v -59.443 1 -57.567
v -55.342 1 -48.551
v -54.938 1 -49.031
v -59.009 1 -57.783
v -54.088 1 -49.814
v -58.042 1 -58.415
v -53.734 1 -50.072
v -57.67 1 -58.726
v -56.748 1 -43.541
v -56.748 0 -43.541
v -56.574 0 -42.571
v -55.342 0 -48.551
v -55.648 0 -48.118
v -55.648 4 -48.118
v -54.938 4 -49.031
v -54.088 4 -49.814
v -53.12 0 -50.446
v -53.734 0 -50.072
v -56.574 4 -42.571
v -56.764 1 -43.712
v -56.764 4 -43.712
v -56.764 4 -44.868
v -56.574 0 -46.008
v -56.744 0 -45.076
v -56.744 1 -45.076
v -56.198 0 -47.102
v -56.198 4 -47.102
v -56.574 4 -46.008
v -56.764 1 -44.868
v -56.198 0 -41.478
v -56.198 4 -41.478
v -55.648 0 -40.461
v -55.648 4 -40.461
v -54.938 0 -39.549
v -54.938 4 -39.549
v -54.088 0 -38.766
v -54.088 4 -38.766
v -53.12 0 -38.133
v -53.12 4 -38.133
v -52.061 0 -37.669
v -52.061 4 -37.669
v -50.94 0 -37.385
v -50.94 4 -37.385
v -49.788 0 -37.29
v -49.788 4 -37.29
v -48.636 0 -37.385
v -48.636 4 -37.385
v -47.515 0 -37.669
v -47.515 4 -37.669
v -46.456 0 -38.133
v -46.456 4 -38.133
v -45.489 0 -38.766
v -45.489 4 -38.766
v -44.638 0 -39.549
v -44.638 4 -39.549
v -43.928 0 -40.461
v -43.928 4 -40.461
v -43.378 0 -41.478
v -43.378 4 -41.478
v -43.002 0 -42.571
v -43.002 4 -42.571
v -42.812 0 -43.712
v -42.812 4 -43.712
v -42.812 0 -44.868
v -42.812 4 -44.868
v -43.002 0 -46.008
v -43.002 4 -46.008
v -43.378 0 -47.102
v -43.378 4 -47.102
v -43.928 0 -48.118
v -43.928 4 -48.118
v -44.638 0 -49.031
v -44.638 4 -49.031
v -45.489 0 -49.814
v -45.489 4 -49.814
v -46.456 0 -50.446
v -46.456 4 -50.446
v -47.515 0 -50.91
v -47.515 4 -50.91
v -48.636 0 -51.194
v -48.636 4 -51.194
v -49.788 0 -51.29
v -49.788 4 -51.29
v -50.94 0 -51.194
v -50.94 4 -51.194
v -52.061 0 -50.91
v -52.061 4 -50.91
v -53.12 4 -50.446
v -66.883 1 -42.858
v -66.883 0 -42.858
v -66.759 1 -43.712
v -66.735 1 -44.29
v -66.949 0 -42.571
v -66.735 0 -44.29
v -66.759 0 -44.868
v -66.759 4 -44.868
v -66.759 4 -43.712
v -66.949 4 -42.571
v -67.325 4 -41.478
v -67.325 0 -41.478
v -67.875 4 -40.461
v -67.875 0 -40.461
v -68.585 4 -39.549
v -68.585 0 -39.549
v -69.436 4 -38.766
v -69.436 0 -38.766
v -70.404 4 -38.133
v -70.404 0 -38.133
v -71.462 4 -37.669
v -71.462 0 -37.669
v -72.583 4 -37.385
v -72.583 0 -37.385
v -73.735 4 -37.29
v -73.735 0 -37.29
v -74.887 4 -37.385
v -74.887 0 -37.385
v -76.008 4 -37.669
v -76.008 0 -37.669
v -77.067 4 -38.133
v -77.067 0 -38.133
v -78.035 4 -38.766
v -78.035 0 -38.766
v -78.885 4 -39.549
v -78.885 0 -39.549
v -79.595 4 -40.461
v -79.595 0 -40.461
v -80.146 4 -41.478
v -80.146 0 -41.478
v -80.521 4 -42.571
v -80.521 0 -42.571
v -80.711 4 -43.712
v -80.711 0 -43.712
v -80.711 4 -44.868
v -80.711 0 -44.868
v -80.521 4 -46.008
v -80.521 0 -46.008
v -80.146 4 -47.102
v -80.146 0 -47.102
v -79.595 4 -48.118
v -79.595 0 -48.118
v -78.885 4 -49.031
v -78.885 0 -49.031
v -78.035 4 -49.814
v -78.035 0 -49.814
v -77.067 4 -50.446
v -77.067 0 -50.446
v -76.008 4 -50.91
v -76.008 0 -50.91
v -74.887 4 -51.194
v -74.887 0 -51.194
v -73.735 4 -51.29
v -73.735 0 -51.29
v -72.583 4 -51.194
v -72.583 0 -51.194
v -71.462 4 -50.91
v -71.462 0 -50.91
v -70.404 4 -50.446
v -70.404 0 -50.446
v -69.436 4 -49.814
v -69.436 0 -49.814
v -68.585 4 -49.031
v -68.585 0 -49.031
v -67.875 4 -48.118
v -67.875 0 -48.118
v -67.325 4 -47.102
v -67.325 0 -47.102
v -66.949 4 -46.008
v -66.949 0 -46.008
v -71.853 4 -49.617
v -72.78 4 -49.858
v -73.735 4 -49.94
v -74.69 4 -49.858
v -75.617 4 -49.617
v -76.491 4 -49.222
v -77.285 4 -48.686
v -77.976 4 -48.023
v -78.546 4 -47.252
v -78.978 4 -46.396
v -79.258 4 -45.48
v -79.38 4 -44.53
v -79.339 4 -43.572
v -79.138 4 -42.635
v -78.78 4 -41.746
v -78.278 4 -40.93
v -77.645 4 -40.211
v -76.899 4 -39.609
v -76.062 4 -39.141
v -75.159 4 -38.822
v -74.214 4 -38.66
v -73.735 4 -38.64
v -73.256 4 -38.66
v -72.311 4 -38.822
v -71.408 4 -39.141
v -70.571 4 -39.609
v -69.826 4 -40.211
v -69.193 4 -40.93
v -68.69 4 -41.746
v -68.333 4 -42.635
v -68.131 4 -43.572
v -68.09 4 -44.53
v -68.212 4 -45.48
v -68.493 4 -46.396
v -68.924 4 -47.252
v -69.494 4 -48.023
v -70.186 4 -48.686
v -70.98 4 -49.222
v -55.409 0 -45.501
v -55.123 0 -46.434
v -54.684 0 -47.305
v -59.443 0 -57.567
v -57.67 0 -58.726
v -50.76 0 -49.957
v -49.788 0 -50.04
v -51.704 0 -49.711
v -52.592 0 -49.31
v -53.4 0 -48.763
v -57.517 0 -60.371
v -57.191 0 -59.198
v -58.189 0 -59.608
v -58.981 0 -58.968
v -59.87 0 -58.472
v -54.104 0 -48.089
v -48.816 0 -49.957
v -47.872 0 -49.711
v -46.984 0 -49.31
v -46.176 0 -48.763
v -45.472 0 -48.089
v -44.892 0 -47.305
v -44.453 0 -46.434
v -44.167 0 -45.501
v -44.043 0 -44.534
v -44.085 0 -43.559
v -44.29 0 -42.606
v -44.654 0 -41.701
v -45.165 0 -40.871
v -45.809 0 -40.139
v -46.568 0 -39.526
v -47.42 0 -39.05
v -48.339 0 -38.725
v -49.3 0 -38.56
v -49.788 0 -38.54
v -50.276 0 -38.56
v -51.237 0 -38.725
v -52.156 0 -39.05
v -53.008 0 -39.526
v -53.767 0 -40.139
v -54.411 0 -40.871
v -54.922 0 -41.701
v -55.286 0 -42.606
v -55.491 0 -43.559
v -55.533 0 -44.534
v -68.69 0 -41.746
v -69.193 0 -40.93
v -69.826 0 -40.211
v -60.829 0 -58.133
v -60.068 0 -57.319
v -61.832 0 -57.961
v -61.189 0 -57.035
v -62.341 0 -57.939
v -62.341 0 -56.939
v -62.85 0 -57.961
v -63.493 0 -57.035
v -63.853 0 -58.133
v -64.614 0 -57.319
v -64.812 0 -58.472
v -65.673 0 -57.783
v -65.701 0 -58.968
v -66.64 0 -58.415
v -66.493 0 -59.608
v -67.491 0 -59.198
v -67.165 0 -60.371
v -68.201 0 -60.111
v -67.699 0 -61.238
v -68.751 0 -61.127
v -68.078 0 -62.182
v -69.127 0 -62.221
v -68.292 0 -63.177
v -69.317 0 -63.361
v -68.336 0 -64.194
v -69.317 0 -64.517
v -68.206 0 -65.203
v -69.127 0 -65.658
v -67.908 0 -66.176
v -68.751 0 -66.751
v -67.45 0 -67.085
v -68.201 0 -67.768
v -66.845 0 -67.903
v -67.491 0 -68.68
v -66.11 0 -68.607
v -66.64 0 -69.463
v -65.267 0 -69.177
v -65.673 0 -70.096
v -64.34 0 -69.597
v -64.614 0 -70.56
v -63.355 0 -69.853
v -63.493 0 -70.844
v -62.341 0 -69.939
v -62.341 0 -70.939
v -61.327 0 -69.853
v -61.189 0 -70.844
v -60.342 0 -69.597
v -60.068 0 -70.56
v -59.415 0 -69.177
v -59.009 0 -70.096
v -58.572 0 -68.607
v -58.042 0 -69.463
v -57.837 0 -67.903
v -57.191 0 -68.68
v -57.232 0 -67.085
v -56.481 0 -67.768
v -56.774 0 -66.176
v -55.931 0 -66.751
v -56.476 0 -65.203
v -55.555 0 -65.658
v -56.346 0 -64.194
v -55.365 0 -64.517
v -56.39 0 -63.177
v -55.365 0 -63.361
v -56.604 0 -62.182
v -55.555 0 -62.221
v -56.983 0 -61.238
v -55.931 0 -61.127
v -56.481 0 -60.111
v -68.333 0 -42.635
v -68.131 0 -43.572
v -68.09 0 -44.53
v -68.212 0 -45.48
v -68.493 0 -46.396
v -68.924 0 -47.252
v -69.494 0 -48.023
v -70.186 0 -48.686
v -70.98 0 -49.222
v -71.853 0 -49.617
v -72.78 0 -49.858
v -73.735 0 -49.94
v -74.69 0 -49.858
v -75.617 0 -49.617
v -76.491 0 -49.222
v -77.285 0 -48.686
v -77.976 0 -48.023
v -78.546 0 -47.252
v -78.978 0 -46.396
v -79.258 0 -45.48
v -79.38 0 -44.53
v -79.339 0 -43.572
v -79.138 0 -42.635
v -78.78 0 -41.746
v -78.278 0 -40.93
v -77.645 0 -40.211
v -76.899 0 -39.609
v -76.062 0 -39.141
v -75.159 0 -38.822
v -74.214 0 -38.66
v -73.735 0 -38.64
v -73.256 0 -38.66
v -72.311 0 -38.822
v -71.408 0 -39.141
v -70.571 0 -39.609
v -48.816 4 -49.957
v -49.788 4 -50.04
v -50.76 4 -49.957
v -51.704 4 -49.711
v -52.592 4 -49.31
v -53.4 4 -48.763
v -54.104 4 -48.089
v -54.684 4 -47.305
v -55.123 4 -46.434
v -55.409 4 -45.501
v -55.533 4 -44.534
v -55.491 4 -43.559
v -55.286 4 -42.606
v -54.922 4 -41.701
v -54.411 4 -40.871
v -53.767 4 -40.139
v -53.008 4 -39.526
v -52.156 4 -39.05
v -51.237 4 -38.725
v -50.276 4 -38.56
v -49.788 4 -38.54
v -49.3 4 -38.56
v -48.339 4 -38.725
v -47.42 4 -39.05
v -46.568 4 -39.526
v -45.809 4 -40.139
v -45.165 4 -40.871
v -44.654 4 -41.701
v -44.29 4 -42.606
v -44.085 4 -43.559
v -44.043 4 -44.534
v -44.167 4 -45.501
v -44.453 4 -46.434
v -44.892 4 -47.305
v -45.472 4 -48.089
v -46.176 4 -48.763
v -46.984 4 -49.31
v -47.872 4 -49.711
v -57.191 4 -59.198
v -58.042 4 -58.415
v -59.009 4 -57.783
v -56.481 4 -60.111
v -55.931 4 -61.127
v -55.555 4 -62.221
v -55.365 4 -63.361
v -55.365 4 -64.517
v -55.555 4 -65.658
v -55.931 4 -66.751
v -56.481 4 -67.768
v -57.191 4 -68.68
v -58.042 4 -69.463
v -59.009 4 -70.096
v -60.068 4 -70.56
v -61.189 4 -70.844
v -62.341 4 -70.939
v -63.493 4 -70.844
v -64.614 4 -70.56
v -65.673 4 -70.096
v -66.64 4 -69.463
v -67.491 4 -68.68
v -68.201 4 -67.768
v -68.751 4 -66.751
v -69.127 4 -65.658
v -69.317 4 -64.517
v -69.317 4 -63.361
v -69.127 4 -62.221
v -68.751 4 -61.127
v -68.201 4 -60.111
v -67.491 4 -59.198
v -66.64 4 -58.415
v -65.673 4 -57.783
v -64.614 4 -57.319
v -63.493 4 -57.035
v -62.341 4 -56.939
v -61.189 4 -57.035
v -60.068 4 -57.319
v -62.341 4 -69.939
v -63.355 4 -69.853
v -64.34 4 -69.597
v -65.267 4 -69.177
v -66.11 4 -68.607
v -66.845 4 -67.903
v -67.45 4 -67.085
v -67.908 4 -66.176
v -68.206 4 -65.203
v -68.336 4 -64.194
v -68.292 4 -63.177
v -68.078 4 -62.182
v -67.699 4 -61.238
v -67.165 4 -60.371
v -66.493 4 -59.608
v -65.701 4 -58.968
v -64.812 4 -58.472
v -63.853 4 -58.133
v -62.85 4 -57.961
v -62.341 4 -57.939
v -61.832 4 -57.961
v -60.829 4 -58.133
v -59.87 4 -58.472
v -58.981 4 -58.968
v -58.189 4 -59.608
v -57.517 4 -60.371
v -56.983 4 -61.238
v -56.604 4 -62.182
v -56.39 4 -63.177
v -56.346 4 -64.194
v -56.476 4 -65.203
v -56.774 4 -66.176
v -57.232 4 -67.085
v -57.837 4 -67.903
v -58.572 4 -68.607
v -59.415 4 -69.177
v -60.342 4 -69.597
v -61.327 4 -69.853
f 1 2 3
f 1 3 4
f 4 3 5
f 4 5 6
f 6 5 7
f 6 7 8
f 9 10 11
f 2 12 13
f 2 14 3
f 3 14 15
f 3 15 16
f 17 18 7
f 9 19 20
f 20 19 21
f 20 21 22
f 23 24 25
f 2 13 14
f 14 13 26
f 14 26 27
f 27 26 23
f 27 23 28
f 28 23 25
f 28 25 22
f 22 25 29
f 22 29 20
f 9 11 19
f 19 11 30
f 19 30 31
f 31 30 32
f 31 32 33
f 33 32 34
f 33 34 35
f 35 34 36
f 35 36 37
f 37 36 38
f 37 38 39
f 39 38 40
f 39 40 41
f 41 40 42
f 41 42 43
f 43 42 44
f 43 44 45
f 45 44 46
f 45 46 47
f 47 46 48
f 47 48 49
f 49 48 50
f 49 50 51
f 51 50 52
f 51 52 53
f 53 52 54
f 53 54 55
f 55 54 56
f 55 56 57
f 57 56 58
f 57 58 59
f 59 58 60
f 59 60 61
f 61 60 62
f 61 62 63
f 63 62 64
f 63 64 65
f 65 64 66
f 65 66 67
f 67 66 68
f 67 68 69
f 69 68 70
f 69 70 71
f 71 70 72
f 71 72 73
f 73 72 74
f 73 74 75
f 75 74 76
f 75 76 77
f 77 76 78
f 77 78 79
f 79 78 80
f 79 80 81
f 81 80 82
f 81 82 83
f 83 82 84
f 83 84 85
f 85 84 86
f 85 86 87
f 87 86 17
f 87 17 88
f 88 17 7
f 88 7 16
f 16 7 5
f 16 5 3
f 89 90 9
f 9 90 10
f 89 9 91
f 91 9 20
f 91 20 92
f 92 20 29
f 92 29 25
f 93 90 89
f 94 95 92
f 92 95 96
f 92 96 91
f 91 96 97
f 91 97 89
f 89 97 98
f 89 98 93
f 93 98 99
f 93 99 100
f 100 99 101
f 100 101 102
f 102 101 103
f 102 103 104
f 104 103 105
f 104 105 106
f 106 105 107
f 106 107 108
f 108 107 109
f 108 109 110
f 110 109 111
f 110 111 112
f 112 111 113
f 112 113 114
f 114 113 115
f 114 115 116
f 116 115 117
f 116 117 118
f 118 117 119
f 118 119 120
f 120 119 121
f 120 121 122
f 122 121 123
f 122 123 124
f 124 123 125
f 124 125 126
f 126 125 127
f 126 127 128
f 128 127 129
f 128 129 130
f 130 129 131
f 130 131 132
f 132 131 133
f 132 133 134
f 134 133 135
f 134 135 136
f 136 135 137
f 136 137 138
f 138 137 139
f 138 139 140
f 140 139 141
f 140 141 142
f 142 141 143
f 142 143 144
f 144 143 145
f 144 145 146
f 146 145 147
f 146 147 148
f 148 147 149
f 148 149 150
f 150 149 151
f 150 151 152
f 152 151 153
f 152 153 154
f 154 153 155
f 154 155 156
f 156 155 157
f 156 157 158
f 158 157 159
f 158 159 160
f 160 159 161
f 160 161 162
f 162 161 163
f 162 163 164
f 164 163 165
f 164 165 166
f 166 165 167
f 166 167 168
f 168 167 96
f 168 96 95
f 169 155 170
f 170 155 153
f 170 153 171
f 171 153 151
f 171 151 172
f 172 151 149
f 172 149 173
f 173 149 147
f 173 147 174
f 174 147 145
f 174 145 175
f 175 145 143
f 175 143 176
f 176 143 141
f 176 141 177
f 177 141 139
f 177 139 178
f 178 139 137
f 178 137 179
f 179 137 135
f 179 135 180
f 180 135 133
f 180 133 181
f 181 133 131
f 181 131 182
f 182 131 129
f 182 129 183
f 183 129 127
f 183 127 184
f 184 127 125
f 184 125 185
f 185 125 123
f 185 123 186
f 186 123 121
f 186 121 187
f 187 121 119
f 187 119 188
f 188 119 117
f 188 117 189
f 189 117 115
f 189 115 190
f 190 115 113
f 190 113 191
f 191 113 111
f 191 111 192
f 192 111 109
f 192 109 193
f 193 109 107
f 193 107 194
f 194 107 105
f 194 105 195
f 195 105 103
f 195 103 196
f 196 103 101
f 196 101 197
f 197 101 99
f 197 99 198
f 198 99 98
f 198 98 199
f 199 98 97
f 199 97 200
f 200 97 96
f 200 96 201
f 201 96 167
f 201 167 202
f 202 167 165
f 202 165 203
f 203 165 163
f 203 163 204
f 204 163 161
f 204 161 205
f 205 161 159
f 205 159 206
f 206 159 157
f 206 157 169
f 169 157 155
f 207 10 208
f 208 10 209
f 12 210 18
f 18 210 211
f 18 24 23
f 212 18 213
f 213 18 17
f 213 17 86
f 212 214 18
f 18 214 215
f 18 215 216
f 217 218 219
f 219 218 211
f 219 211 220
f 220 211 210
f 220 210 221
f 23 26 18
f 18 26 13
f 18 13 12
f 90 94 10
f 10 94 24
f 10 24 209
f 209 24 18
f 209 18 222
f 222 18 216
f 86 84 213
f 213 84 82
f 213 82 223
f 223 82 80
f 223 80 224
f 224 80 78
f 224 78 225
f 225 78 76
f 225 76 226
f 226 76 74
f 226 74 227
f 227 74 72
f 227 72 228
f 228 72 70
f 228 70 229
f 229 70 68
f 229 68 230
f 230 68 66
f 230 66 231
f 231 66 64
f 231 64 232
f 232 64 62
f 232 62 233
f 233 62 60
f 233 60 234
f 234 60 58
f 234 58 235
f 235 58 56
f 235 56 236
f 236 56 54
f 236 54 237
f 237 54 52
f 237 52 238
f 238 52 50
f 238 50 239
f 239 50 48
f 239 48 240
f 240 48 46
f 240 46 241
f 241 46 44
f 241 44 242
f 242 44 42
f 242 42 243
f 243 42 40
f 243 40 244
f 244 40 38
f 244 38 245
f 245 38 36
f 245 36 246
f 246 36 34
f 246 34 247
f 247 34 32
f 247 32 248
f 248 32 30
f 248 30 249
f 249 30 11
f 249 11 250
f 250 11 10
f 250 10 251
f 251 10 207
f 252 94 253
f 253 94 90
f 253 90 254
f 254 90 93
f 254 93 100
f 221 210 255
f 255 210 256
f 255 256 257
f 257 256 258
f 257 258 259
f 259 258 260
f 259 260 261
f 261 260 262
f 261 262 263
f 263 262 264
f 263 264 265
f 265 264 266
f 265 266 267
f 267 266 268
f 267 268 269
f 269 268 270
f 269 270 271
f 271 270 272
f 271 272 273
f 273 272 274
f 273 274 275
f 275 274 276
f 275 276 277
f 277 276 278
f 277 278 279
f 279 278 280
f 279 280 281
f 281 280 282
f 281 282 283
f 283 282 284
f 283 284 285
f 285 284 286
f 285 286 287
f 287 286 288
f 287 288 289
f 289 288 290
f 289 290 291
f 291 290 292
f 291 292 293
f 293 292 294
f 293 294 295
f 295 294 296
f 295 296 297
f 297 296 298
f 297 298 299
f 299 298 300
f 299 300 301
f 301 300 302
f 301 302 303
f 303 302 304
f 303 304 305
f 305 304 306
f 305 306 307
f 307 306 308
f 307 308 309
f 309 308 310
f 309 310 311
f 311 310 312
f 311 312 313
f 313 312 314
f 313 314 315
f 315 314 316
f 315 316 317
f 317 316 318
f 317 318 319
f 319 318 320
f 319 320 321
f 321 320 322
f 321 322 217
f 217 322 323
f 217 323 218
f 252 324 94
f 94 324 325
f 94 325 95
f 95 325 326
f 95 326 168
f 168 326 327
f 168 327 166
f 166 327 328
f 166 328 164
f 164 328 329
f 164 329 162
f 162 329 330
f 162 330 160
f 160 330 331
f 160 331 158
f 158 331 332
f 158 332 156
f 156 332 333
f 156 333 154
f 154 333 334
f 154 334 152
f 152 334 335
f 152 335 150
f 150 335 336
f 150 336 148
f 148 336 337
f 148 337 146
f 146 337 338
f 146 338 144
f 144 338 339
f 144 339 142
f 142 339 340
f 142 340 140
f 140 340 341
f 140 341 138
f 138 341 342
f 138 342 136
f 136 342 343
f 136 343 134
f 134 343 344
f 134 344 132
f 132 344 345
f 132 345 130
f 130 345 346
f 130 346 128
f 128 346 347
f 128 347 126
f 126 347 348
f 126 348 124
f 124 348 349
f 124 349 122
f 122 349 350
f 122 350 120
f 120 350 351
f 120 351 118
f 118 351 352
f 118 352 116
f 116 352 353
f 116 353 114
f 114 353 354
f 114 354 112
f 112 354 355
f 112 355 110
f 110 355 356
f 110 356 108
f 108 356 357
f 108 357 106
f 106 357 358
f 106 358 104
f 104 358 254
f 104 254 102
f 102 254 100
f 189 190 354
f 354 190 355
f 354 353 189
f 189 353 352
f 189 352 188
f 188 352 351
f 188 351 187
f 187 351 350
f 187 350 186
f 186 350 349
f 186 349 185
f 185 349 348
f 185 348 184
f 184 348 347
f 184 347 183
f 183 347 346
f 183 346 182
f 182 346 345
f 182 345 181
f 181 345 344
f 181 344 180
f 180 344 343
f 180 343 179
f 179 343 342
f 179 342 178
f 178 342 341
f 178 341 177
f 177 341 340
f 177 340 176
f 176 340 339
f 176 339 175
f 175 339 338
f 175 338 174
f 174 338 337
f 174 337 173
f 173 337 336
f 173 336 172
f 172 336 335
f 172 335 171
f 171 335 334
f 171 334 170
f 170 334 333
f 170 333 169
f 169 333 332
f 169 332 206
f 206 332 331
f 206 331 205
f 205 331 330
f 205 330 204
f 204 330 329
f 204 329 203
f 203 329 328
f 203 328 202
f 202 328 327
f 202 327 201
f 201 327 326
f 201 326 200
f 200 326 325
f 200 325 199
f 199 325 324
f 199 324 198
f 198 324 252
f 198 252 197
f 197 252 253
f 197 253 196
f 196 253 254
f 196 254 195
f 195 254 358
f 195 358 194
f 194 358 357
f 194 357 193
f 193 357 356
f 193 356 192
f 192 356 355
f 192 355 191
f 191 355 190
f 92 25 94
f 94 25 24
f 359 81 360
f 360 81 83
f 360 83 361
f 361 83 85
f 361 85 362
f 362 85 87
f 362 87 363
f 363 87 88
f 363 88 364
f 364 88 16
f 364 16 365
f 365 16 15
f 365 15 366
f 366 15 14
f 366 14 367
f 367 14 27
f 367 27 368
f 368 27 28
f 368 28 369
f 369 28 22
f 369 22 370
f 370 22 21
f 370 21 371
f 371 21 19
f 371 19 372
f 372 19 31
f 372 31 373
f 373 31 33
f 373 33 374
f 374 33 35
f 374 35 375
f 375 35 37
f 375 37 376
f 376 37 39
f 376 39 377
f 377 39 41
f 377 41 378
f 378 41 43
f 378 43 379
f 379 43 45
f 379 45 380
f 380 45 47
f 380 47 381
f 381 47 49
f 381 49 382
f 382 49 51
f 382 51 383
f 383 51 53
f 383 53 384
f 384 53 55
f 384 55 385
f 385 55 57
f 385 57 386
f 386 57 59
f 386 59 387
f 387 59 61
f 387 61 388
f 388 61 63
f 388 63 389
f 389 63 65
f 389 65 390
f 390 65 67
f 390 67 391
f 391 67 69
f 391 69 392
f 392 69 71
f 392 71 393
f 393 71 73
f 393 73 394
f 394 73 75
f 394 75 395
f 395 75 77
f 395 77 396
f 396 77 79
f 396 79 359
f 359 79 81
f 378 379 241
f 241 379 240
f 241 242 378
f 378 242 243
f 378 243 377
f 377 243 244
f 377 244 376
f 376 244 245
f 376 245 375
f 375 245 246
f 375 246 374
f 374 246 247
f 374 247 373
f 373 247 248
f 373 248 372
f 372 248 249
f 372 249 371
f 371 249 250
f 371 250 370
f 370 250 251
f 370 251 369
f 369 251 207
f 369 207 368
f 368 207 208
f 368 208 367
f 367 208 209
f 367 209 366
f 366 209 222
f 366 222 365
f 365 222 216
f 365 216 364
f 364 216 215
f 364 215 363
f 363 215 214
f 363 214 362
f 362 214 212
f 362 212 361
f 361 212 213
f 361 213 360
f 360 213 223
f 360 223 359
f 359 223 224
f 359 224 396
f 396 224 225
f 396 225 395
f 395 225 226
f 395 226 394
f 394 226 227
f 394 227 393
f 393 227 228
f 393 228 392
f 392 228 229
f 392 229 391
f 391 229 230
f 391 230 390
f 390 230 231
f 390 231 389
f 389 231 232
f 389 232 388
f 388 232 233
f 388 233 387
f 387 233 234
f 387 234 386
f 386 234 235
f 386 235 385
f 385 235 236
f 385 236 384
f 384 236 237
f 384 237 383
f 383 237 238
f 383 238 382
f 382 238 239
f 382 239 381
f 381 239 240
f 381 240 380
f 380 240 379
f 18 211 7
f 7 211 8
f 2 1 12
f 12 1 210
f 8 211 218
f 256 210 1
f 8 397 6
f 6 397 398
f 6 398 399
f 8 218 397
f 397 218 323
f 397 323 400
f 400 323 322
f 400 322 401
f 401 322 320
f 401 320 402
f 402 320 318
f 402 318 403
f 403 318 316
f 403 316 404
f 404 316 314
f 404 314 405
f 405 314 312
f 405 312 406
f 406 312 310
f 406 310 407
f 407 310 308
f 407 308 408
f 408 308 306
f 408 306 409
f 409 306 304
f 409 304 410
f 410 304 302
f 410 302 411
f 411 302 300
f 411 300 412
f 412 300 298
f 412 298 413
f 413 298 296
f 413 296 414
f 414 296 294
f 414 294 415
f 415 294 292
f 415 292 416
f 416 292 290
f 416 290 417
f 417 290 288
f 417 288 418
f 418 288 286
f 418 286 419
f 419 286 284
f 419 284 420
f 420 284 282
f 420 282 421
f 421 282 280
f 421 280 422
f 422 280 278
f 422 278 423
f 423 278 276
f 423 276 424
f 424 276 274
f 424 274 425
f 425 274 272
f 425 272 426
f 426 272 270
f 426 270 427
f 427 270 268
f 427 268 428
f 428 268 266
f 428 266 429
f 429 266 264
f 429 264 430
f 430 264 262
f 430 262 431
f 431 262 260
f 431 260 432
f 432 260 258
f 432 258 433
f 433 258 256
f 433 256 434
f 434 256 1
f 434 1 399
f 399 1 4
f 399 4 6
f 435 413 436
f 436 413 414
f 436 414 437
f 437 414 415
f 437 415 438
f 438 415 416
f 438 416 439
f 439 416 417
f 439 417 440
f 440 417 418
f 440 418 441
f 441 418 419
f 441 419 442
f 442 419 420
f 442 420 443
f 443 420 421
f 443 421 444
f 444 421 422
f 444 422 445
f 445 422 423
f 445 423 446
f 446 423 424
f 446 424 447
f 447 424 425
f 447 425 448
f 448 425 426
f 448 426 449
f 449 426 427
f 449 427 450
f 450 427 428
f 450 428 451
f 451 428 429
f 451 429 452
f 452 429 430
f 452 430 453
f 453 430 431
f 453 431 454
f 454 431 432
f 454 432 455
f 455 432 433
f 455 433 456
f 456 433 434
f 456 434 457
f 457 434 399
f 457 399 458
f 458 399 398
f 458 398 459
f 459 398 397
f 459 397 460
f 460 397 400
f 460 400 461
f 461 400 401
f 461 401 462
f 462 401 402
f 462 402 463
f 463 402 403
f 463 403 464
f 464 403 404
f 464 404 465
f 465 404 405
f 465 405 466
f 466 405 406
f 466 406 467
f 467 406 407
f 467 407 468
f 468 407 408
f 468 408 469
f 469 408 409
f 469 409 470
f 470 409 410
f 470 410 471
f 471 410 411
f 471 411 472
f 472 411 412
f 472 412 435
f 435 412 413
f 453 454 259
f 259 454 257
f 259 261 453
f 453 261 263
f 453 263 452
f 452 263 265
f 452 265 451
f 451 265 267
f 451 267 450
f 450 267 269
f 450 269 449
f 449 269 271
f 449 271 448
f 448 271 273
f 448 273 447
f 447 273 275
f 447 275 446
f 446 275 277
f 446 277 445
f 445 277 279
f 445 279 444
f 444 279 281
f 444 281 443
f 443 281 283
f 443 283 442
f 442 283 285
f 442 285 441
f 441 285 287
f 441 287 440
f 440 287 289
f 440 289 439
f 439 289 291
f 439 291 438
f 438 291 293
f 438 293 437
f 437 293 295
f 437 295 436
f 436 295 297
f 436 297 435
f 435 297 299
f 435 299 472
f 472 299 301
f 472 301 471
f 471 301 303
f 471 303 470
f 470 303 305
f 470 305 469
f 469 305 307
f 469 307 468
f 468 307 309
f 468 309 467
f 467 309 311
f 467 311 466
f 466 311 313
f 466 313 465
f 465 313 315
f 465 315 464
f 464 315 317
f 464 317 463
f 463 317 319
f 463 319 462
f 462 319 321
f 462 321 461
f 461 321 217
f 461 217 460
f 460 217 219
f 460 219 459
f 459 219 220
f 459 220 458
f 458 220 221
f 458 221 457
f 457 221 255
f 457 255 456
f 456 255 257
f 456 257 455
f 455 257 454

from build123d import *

# Parameters (mm, degrees)
SKETCH_1_R        = 7
SKETCH_1_R_2      = 5.65
EXTRUDE_1_DEPTH   = 4
SKETCH_1_R_3      = 5.75
EXTRUDE_1_2_DEPTH = 4
SKETCH_1_R_4      = 6
EXTRUDE_1_3_DEPTH = 4
EXTRUDE_2_DEPTH   = 1


with BuildPart() as part:
    # 草图1 → 凸台-拉伸1 (new body)
    with BuildSketch(Plane(origin=(0, 0, 0), x_dir=(1, 0, 0), z_dir=(0, 1, 0))):
        with Locations((-73.735173333, 44.289748166)):
            Circle(SKETCH_1_R)
        with Locations((-73.735173333, 44.289748166)):
            Circle(SKETCH_1_R_2, mode=Mode.SUBTRACT)
    extrude(amount=EXTRUDE_1_DEPTH)



with BuildPart() as body_2:
    # 草图1 → Extrude 1 2 (new body)
    with BuildSketch(Plane(origin=(0, 0, 0), x_dir=(1, 0, 0), z_dir=(0, 1, 0))):
        with Locations((-49.788051119, 44.289748166)):
            Circle(SKETCH_1_R)
        with Locations((-49.788051119, 44.289748166)):
            Circle(SKETCH_1_R_3, mode=Mode.SUBTRACT)
    extrude(amount=EXTRUDE_1_2_DEPTH)


with BuildPart() as body_3:
    # 草图1 → Extrude 1 3 (new body)
    with BuildSketch(Plane(origin=(0, 0, 0), x_dir=(1, 0, 0), z_dir=(0, 1, 0))):
        with Locations((-62.341002405, 63.939282004)):
            Circle(SKETCH_1_R)
        with Locations((-62.341002405, 63.939282004)):
            Circle(SKETCH_1_R_4, mode=Mode.SUBTRACT)
    extrude(amount=EXTRUDE_1_3_DEPTH)


with BuildPart() as part_1:
    add(part.part)

    add(body_2.part)  # 凸台-拉伸2 merges body 2

    add(body_3.part)  # 凸台-拉伸2 merges body 3
    # 草图2 → 凸台-拉伸2 (add)
    with BuildSketch(Plane(origin=(0, 0, 0), x_dir=(1, 0, 0), z_dir=(0, 1, 0))):
        Polygon((-66.735173333, 44.289748166), (-56.743768428, 45.075875842), (-56.371981746, 43.565889762), (-67.1134612, 42.842031358), align=None)
        Polygon((-59.44276594, 57.567451388), (-55.341606688, 48.550971059), (-53.588038725, 49.751237508), (-57.6700519, 58.725624806), align=None)
    extrude(amount=EXTRUDE_2_DEPTH)


solid = part_1.part
